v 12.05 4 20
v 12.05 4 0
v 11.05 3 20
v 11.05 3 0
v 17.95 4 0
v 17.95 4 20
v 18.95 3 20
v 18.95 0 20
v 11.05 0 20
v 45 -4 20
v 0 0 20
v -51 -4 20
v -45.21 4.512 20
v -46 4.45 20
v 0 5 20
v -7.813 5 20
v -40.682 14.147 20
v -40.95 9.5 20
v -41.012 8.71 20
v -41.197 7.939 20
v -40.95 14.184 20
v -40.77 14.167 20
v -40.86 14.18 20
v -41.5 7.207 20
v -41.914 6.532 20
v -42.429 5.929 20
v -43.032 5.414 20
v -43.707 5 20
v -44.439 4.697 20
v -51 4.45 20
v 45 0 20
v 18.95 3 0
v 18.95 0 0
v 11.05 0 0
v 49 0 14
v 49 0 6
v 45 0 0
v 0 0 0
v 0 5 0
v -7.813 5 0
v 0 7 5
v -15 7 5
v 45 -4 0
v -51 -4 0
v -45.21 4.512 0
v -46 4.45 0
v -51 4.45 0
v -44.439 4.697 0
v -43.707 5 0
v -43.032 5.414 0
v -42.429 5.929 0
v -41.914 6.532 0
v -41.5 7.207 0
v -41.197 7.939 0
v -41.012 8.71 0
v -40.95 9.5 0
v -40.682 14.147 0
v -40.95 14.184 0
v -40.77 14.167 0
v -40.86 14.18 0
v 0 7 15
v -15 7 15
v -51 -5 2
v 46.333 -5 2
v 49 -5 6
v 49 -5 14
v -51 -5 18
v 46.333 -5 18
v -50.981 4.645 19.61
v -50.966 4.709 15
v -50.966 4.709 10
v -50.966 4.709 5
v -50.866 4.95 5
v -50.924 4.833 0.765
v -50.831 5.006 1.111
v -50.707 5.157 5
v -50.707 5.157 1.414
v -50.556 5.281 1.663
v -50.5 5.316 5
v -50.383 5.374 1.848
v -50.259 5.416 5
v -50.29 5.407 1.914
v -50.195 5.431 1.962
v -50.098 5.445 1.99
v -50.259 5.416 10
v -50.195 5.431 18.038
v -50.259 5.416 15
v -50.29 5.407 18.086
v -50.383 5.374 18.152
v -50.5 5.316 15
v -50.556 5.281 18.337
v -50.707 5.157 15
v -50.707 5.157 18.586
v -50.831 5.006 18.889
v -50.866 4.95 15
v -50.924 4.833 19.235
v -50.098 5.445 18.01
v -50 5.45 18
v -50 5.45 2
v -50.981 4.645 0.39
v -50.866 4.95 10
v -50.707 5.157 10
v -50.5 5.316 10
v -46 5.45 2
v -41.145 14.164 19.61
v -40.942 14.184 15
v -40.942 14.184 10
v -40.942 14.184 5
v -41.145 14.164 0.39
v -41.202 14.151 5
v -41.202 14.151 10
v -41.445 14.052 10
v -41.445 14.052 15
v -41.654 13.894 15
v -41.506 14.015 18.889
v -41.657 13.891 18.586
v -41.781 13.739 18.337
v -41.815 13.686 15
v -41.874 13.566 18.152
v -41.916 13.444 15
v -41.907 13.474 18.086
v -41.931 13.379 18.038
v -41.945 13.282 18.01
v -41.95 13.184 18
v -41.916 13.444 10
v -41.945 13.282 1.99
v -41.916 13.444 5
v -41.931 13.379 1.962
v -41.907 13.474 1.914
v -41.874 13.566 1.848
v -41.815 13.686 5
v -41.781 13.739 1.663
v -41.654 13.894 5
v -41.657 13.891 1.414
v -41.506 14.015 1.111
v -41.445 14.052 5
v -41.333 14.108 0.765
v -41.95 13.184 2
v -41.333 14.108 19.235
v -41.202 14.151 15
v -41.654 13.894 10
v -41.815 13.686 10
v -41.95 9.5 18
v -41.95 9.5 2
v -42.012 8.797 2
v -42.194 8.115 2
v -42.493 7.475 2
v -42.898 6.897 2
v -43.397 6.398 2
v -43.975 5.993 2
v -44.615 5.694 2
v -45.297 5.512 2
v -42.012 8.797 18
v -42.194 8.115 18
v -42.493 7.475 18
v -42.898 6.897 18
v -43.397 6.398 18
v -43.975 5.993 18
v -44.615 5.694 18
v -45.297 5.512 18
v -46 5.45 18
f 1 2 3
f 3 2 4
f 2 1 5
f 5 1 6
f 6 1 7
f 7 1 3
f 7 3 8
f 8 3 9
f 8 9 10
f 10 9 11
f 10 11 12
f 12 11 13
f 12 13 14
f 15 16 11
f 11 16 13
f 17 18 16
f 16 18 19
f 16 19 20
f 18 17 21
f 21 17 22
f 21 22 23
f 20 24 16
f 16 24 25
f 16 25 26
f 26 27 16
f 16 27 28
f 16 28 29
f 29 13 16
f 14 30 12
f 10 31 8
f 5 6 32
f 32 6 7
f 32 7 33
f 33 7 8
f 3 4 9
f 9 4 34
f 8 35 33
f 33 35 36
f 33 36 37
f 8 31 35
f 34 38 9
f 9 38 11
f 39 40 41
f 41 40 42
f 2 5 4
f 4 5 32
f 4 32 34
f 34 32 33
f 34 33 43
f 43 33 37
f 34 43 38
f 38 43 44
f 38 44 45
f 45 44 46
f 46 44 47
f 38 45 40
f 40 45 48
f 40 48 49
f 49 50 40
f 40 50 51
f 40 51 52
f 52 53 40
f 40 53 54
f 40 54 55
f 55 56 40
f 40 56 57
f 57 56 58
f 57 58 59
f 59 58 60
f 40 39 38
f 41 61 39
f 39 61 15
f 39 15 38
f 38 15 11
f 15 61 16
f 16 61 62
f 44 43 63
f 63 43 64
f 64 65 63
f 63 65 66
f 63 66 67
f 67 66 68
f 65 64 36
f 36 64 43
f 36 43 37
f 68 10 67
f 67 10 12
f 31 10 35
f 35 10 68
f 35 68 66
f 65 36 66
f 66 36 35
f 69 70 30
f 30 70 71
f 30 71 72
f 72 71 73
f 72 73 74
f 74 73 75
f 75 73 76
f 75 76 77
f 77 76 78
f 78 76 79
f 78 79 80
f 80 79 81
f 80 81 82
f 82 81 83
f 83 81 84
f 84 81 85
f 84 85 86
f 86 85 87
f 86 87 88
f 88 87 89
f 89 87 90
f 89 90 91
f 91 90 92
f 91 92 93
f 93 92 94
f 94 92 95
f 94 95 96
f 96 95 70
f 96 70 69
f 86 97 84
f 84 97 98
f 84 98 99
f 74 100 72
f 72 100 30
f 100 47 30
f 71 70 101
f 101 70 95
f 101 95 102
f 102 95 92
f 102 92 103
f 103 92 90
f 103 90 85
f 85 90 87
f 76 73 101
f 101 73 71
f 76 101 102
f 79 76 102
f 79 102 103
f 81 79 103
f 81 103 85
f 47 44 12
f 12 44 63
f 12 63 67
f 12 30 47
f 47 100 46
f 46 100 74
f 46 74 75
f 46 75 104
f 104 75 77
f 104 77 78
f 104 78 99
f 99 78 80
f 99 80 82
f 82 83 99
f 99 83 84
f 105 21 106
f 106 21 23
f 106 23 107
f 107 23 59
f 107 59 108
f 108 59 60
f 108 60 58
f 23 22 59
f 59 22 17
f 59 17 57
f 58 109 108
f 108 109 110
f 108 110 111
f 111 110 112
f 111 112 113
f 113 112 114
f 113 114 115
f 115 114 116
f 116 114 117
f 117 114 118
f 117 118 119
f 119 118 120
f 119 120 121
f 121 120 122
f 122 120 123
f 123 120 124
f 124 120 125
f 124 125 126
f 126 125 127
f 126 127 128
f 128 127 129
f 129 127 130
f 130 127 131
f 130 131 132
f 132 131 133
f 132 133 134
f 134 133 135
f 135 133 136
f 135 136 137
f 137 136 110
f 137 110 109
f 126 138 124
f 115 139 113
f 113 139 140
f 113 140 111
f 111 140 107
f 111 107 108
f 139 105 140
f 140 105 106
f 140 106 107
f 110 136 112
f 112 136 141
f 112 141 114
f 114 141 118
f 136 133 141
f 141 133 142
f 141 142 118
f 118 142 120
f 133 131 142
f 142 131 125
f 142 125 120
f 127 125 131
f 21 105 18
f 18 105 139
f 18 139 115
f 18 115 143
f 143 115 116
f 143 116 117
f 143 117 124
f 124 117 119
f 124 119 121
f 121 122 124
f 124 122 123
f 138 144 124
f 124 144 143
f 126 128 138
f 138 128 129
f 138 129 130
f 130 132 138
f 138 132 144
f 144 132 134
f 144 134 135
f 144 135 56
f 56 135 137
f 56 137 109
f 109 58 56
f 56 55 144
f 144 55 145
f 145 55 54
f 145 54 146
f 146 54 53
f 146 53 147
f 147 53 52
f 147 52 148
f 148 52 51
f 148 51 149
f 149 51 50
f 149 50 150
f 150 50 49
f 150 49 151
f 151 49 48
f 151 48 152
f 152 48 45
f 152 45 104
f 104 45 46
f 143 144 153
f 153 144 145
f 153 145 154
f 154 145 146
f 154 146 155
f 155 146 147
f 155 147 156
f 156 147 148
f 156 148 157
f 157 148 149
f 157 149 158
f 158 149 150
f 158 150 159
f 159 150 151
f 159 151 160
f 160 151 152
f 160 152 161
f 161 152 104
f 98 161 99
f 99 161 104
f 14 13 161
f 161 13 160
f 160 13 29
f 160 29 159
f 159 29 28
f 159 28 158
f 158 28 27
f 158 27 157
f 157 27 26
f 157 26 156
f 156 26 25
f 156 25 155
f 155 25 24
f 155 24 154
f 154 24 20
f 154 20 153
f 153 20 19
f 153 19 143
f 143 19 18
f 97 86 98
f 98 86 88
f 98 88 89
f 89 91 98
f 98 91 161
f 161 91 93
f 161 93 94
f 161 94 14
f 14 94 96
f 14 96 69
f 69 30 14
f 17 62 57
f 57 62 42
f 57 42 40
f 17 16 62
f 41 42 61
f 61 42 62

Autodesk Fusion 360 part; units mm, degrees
sketch "Sketch1" plane through (0, 0, 0) normal (0, 0, 1) x (1, 0, 0)
  line L0 (0, 0) -> (0, 7)
  line L1 (0, 0) -> (30, 0)
  line L2 (30, 0) -> (30, -5)
  line L3 (30, -5) -> (-51, -5)
  line L4 (-41.95, 9.5) -> (-41.95, 14.5)
  line L5 (-46, 5.45) -> (-51, 5.45)
  arc A0 (-46, 5.45) -> (-41.95, 9.5) centre (-46, 9.5) ccw
  line L6 (0, 7) -> (-15, 7)
  line L7 (-15, 7) -> (-41.95, 14.5)
  line L8 (-51, 5.45) -> (-51, -5)
  dimension "d1" = 9.5
  dimension "d2" = 46
  dimension "d3" = 8.1
  dimension "d4" = 5
  dimension "d6" = 5
  dimension "d7" = 5
  dimension "d8" = 7
  dimension "d9" = 15
  dimension "d10" = 30
extrude "Extrude1" add sketch "Sketch1" along normal blind 20
sketch "Sketch2" plane through (0, -5, 0) normal (0, -1, 0) x (1, 0, 0)
  line L0 (-51, 0) -> (30, 0)
  line L1 (30, 0) -> (30, 20)
  line L2 (30, 20) -> (-51, 20)
  line L3 (15, 20) -> (15, 0) construction
  circle A0 centre (15, 10) radius 3.25
  line L4 (-51, 20) -> (-51, 0)
  dimension "d13" = 15
  dimension "d14" = 6.5
chamfer "Chamfer1" distance 1 distance2 2 6 edges at (-43.1362, 6.6362, 20) (-48.5, 5.45, 20) (-41.95, 12, 20) (-43.1362, 6.6362, 0) (-41.95, 12, 0) (-48.5, 5.45, 0) measured on face at (-22, 0.6667, 20) measured on face at (-22, 0.6667, 20) measured on face at (-22, 0.6667, 20) measured on face at (-22, 0.6667, 0) measured on face at (-22, 0.6667, 0) measured on face at (-47.6667, 5.45, 6.6667)
fillet "Fillet1" radius 1 2 edges at (-41.95, 14.5, 10) (-51, 5.45, 10)
chamfer "Chamfer2" distance 4 distance2 6 2 edges at (30, -2.5, 20) (30, -2.5, 0) measured on face at (-22, 0.6667, 20) measured on face at (-22, 0.6667, 0)
chamfer "Chamfer3" distance 1 distance2 2 2 edges at (-12.5, -5, 20) (-12.5, -5, 0) measured on face at (-22, 0.6667, 20) measured on face at (-22, 0.6667, 0)
chamfer "Chamfer4" distance 2 distance2 5 1 edges at (-7.5, 7, 20) measured on face at (-22, 1, 20)
chamfer "Chamfer4" distance 5 distance2 2 1 edges at (-7.5, 7, 0) measured on face at (-5, 7, 6.6667)
sketch "Sketch3" plane through (0, 0, 0) normal (0, 1, 0) x (-1, 0, 0)
  line L0 (-30, 6) -> (-26, 0)
  line L1 (-26, 0) -> (0, 0)
  line L2 (0, 0) -> (0, 20)
  line L3 (0, 20) -> (-26, 20)
  line L4 (-26, 20) -> (-30, 14)
  line L5 (-30, 14) -> (-30, 6)
  line L6 (-18.95, 20) -> (-11.05, 20)
  line L7 (-11.05, 20) -> (-11.05, 0)
  line L8 (-11.05, 0) -> (-18.95, 0)
  line L9 (-18.95, 0) -> (-18.95, 20)
  line L10 (-15, 20) -> (-15, 0) construction
  dimension "d29" = 15
  dimension "d30" = 7.9
extrude "Extrude3" add sketch "Sketch3" along normal blind 4 contours L1 L3 L6 L7 L8 L9
chamfer "Chamfer5" distance 1 angle 45 2 edges at (18.95, 4, 10) (11.05, 4, 10)
move_face "MoveFace1" by (19, 0, 0) 3 faces at (27.7778, -1.6667, 17.3333) (27.7778, -1.6667, 2.6667) (30, -1.6667, 11.3333)
